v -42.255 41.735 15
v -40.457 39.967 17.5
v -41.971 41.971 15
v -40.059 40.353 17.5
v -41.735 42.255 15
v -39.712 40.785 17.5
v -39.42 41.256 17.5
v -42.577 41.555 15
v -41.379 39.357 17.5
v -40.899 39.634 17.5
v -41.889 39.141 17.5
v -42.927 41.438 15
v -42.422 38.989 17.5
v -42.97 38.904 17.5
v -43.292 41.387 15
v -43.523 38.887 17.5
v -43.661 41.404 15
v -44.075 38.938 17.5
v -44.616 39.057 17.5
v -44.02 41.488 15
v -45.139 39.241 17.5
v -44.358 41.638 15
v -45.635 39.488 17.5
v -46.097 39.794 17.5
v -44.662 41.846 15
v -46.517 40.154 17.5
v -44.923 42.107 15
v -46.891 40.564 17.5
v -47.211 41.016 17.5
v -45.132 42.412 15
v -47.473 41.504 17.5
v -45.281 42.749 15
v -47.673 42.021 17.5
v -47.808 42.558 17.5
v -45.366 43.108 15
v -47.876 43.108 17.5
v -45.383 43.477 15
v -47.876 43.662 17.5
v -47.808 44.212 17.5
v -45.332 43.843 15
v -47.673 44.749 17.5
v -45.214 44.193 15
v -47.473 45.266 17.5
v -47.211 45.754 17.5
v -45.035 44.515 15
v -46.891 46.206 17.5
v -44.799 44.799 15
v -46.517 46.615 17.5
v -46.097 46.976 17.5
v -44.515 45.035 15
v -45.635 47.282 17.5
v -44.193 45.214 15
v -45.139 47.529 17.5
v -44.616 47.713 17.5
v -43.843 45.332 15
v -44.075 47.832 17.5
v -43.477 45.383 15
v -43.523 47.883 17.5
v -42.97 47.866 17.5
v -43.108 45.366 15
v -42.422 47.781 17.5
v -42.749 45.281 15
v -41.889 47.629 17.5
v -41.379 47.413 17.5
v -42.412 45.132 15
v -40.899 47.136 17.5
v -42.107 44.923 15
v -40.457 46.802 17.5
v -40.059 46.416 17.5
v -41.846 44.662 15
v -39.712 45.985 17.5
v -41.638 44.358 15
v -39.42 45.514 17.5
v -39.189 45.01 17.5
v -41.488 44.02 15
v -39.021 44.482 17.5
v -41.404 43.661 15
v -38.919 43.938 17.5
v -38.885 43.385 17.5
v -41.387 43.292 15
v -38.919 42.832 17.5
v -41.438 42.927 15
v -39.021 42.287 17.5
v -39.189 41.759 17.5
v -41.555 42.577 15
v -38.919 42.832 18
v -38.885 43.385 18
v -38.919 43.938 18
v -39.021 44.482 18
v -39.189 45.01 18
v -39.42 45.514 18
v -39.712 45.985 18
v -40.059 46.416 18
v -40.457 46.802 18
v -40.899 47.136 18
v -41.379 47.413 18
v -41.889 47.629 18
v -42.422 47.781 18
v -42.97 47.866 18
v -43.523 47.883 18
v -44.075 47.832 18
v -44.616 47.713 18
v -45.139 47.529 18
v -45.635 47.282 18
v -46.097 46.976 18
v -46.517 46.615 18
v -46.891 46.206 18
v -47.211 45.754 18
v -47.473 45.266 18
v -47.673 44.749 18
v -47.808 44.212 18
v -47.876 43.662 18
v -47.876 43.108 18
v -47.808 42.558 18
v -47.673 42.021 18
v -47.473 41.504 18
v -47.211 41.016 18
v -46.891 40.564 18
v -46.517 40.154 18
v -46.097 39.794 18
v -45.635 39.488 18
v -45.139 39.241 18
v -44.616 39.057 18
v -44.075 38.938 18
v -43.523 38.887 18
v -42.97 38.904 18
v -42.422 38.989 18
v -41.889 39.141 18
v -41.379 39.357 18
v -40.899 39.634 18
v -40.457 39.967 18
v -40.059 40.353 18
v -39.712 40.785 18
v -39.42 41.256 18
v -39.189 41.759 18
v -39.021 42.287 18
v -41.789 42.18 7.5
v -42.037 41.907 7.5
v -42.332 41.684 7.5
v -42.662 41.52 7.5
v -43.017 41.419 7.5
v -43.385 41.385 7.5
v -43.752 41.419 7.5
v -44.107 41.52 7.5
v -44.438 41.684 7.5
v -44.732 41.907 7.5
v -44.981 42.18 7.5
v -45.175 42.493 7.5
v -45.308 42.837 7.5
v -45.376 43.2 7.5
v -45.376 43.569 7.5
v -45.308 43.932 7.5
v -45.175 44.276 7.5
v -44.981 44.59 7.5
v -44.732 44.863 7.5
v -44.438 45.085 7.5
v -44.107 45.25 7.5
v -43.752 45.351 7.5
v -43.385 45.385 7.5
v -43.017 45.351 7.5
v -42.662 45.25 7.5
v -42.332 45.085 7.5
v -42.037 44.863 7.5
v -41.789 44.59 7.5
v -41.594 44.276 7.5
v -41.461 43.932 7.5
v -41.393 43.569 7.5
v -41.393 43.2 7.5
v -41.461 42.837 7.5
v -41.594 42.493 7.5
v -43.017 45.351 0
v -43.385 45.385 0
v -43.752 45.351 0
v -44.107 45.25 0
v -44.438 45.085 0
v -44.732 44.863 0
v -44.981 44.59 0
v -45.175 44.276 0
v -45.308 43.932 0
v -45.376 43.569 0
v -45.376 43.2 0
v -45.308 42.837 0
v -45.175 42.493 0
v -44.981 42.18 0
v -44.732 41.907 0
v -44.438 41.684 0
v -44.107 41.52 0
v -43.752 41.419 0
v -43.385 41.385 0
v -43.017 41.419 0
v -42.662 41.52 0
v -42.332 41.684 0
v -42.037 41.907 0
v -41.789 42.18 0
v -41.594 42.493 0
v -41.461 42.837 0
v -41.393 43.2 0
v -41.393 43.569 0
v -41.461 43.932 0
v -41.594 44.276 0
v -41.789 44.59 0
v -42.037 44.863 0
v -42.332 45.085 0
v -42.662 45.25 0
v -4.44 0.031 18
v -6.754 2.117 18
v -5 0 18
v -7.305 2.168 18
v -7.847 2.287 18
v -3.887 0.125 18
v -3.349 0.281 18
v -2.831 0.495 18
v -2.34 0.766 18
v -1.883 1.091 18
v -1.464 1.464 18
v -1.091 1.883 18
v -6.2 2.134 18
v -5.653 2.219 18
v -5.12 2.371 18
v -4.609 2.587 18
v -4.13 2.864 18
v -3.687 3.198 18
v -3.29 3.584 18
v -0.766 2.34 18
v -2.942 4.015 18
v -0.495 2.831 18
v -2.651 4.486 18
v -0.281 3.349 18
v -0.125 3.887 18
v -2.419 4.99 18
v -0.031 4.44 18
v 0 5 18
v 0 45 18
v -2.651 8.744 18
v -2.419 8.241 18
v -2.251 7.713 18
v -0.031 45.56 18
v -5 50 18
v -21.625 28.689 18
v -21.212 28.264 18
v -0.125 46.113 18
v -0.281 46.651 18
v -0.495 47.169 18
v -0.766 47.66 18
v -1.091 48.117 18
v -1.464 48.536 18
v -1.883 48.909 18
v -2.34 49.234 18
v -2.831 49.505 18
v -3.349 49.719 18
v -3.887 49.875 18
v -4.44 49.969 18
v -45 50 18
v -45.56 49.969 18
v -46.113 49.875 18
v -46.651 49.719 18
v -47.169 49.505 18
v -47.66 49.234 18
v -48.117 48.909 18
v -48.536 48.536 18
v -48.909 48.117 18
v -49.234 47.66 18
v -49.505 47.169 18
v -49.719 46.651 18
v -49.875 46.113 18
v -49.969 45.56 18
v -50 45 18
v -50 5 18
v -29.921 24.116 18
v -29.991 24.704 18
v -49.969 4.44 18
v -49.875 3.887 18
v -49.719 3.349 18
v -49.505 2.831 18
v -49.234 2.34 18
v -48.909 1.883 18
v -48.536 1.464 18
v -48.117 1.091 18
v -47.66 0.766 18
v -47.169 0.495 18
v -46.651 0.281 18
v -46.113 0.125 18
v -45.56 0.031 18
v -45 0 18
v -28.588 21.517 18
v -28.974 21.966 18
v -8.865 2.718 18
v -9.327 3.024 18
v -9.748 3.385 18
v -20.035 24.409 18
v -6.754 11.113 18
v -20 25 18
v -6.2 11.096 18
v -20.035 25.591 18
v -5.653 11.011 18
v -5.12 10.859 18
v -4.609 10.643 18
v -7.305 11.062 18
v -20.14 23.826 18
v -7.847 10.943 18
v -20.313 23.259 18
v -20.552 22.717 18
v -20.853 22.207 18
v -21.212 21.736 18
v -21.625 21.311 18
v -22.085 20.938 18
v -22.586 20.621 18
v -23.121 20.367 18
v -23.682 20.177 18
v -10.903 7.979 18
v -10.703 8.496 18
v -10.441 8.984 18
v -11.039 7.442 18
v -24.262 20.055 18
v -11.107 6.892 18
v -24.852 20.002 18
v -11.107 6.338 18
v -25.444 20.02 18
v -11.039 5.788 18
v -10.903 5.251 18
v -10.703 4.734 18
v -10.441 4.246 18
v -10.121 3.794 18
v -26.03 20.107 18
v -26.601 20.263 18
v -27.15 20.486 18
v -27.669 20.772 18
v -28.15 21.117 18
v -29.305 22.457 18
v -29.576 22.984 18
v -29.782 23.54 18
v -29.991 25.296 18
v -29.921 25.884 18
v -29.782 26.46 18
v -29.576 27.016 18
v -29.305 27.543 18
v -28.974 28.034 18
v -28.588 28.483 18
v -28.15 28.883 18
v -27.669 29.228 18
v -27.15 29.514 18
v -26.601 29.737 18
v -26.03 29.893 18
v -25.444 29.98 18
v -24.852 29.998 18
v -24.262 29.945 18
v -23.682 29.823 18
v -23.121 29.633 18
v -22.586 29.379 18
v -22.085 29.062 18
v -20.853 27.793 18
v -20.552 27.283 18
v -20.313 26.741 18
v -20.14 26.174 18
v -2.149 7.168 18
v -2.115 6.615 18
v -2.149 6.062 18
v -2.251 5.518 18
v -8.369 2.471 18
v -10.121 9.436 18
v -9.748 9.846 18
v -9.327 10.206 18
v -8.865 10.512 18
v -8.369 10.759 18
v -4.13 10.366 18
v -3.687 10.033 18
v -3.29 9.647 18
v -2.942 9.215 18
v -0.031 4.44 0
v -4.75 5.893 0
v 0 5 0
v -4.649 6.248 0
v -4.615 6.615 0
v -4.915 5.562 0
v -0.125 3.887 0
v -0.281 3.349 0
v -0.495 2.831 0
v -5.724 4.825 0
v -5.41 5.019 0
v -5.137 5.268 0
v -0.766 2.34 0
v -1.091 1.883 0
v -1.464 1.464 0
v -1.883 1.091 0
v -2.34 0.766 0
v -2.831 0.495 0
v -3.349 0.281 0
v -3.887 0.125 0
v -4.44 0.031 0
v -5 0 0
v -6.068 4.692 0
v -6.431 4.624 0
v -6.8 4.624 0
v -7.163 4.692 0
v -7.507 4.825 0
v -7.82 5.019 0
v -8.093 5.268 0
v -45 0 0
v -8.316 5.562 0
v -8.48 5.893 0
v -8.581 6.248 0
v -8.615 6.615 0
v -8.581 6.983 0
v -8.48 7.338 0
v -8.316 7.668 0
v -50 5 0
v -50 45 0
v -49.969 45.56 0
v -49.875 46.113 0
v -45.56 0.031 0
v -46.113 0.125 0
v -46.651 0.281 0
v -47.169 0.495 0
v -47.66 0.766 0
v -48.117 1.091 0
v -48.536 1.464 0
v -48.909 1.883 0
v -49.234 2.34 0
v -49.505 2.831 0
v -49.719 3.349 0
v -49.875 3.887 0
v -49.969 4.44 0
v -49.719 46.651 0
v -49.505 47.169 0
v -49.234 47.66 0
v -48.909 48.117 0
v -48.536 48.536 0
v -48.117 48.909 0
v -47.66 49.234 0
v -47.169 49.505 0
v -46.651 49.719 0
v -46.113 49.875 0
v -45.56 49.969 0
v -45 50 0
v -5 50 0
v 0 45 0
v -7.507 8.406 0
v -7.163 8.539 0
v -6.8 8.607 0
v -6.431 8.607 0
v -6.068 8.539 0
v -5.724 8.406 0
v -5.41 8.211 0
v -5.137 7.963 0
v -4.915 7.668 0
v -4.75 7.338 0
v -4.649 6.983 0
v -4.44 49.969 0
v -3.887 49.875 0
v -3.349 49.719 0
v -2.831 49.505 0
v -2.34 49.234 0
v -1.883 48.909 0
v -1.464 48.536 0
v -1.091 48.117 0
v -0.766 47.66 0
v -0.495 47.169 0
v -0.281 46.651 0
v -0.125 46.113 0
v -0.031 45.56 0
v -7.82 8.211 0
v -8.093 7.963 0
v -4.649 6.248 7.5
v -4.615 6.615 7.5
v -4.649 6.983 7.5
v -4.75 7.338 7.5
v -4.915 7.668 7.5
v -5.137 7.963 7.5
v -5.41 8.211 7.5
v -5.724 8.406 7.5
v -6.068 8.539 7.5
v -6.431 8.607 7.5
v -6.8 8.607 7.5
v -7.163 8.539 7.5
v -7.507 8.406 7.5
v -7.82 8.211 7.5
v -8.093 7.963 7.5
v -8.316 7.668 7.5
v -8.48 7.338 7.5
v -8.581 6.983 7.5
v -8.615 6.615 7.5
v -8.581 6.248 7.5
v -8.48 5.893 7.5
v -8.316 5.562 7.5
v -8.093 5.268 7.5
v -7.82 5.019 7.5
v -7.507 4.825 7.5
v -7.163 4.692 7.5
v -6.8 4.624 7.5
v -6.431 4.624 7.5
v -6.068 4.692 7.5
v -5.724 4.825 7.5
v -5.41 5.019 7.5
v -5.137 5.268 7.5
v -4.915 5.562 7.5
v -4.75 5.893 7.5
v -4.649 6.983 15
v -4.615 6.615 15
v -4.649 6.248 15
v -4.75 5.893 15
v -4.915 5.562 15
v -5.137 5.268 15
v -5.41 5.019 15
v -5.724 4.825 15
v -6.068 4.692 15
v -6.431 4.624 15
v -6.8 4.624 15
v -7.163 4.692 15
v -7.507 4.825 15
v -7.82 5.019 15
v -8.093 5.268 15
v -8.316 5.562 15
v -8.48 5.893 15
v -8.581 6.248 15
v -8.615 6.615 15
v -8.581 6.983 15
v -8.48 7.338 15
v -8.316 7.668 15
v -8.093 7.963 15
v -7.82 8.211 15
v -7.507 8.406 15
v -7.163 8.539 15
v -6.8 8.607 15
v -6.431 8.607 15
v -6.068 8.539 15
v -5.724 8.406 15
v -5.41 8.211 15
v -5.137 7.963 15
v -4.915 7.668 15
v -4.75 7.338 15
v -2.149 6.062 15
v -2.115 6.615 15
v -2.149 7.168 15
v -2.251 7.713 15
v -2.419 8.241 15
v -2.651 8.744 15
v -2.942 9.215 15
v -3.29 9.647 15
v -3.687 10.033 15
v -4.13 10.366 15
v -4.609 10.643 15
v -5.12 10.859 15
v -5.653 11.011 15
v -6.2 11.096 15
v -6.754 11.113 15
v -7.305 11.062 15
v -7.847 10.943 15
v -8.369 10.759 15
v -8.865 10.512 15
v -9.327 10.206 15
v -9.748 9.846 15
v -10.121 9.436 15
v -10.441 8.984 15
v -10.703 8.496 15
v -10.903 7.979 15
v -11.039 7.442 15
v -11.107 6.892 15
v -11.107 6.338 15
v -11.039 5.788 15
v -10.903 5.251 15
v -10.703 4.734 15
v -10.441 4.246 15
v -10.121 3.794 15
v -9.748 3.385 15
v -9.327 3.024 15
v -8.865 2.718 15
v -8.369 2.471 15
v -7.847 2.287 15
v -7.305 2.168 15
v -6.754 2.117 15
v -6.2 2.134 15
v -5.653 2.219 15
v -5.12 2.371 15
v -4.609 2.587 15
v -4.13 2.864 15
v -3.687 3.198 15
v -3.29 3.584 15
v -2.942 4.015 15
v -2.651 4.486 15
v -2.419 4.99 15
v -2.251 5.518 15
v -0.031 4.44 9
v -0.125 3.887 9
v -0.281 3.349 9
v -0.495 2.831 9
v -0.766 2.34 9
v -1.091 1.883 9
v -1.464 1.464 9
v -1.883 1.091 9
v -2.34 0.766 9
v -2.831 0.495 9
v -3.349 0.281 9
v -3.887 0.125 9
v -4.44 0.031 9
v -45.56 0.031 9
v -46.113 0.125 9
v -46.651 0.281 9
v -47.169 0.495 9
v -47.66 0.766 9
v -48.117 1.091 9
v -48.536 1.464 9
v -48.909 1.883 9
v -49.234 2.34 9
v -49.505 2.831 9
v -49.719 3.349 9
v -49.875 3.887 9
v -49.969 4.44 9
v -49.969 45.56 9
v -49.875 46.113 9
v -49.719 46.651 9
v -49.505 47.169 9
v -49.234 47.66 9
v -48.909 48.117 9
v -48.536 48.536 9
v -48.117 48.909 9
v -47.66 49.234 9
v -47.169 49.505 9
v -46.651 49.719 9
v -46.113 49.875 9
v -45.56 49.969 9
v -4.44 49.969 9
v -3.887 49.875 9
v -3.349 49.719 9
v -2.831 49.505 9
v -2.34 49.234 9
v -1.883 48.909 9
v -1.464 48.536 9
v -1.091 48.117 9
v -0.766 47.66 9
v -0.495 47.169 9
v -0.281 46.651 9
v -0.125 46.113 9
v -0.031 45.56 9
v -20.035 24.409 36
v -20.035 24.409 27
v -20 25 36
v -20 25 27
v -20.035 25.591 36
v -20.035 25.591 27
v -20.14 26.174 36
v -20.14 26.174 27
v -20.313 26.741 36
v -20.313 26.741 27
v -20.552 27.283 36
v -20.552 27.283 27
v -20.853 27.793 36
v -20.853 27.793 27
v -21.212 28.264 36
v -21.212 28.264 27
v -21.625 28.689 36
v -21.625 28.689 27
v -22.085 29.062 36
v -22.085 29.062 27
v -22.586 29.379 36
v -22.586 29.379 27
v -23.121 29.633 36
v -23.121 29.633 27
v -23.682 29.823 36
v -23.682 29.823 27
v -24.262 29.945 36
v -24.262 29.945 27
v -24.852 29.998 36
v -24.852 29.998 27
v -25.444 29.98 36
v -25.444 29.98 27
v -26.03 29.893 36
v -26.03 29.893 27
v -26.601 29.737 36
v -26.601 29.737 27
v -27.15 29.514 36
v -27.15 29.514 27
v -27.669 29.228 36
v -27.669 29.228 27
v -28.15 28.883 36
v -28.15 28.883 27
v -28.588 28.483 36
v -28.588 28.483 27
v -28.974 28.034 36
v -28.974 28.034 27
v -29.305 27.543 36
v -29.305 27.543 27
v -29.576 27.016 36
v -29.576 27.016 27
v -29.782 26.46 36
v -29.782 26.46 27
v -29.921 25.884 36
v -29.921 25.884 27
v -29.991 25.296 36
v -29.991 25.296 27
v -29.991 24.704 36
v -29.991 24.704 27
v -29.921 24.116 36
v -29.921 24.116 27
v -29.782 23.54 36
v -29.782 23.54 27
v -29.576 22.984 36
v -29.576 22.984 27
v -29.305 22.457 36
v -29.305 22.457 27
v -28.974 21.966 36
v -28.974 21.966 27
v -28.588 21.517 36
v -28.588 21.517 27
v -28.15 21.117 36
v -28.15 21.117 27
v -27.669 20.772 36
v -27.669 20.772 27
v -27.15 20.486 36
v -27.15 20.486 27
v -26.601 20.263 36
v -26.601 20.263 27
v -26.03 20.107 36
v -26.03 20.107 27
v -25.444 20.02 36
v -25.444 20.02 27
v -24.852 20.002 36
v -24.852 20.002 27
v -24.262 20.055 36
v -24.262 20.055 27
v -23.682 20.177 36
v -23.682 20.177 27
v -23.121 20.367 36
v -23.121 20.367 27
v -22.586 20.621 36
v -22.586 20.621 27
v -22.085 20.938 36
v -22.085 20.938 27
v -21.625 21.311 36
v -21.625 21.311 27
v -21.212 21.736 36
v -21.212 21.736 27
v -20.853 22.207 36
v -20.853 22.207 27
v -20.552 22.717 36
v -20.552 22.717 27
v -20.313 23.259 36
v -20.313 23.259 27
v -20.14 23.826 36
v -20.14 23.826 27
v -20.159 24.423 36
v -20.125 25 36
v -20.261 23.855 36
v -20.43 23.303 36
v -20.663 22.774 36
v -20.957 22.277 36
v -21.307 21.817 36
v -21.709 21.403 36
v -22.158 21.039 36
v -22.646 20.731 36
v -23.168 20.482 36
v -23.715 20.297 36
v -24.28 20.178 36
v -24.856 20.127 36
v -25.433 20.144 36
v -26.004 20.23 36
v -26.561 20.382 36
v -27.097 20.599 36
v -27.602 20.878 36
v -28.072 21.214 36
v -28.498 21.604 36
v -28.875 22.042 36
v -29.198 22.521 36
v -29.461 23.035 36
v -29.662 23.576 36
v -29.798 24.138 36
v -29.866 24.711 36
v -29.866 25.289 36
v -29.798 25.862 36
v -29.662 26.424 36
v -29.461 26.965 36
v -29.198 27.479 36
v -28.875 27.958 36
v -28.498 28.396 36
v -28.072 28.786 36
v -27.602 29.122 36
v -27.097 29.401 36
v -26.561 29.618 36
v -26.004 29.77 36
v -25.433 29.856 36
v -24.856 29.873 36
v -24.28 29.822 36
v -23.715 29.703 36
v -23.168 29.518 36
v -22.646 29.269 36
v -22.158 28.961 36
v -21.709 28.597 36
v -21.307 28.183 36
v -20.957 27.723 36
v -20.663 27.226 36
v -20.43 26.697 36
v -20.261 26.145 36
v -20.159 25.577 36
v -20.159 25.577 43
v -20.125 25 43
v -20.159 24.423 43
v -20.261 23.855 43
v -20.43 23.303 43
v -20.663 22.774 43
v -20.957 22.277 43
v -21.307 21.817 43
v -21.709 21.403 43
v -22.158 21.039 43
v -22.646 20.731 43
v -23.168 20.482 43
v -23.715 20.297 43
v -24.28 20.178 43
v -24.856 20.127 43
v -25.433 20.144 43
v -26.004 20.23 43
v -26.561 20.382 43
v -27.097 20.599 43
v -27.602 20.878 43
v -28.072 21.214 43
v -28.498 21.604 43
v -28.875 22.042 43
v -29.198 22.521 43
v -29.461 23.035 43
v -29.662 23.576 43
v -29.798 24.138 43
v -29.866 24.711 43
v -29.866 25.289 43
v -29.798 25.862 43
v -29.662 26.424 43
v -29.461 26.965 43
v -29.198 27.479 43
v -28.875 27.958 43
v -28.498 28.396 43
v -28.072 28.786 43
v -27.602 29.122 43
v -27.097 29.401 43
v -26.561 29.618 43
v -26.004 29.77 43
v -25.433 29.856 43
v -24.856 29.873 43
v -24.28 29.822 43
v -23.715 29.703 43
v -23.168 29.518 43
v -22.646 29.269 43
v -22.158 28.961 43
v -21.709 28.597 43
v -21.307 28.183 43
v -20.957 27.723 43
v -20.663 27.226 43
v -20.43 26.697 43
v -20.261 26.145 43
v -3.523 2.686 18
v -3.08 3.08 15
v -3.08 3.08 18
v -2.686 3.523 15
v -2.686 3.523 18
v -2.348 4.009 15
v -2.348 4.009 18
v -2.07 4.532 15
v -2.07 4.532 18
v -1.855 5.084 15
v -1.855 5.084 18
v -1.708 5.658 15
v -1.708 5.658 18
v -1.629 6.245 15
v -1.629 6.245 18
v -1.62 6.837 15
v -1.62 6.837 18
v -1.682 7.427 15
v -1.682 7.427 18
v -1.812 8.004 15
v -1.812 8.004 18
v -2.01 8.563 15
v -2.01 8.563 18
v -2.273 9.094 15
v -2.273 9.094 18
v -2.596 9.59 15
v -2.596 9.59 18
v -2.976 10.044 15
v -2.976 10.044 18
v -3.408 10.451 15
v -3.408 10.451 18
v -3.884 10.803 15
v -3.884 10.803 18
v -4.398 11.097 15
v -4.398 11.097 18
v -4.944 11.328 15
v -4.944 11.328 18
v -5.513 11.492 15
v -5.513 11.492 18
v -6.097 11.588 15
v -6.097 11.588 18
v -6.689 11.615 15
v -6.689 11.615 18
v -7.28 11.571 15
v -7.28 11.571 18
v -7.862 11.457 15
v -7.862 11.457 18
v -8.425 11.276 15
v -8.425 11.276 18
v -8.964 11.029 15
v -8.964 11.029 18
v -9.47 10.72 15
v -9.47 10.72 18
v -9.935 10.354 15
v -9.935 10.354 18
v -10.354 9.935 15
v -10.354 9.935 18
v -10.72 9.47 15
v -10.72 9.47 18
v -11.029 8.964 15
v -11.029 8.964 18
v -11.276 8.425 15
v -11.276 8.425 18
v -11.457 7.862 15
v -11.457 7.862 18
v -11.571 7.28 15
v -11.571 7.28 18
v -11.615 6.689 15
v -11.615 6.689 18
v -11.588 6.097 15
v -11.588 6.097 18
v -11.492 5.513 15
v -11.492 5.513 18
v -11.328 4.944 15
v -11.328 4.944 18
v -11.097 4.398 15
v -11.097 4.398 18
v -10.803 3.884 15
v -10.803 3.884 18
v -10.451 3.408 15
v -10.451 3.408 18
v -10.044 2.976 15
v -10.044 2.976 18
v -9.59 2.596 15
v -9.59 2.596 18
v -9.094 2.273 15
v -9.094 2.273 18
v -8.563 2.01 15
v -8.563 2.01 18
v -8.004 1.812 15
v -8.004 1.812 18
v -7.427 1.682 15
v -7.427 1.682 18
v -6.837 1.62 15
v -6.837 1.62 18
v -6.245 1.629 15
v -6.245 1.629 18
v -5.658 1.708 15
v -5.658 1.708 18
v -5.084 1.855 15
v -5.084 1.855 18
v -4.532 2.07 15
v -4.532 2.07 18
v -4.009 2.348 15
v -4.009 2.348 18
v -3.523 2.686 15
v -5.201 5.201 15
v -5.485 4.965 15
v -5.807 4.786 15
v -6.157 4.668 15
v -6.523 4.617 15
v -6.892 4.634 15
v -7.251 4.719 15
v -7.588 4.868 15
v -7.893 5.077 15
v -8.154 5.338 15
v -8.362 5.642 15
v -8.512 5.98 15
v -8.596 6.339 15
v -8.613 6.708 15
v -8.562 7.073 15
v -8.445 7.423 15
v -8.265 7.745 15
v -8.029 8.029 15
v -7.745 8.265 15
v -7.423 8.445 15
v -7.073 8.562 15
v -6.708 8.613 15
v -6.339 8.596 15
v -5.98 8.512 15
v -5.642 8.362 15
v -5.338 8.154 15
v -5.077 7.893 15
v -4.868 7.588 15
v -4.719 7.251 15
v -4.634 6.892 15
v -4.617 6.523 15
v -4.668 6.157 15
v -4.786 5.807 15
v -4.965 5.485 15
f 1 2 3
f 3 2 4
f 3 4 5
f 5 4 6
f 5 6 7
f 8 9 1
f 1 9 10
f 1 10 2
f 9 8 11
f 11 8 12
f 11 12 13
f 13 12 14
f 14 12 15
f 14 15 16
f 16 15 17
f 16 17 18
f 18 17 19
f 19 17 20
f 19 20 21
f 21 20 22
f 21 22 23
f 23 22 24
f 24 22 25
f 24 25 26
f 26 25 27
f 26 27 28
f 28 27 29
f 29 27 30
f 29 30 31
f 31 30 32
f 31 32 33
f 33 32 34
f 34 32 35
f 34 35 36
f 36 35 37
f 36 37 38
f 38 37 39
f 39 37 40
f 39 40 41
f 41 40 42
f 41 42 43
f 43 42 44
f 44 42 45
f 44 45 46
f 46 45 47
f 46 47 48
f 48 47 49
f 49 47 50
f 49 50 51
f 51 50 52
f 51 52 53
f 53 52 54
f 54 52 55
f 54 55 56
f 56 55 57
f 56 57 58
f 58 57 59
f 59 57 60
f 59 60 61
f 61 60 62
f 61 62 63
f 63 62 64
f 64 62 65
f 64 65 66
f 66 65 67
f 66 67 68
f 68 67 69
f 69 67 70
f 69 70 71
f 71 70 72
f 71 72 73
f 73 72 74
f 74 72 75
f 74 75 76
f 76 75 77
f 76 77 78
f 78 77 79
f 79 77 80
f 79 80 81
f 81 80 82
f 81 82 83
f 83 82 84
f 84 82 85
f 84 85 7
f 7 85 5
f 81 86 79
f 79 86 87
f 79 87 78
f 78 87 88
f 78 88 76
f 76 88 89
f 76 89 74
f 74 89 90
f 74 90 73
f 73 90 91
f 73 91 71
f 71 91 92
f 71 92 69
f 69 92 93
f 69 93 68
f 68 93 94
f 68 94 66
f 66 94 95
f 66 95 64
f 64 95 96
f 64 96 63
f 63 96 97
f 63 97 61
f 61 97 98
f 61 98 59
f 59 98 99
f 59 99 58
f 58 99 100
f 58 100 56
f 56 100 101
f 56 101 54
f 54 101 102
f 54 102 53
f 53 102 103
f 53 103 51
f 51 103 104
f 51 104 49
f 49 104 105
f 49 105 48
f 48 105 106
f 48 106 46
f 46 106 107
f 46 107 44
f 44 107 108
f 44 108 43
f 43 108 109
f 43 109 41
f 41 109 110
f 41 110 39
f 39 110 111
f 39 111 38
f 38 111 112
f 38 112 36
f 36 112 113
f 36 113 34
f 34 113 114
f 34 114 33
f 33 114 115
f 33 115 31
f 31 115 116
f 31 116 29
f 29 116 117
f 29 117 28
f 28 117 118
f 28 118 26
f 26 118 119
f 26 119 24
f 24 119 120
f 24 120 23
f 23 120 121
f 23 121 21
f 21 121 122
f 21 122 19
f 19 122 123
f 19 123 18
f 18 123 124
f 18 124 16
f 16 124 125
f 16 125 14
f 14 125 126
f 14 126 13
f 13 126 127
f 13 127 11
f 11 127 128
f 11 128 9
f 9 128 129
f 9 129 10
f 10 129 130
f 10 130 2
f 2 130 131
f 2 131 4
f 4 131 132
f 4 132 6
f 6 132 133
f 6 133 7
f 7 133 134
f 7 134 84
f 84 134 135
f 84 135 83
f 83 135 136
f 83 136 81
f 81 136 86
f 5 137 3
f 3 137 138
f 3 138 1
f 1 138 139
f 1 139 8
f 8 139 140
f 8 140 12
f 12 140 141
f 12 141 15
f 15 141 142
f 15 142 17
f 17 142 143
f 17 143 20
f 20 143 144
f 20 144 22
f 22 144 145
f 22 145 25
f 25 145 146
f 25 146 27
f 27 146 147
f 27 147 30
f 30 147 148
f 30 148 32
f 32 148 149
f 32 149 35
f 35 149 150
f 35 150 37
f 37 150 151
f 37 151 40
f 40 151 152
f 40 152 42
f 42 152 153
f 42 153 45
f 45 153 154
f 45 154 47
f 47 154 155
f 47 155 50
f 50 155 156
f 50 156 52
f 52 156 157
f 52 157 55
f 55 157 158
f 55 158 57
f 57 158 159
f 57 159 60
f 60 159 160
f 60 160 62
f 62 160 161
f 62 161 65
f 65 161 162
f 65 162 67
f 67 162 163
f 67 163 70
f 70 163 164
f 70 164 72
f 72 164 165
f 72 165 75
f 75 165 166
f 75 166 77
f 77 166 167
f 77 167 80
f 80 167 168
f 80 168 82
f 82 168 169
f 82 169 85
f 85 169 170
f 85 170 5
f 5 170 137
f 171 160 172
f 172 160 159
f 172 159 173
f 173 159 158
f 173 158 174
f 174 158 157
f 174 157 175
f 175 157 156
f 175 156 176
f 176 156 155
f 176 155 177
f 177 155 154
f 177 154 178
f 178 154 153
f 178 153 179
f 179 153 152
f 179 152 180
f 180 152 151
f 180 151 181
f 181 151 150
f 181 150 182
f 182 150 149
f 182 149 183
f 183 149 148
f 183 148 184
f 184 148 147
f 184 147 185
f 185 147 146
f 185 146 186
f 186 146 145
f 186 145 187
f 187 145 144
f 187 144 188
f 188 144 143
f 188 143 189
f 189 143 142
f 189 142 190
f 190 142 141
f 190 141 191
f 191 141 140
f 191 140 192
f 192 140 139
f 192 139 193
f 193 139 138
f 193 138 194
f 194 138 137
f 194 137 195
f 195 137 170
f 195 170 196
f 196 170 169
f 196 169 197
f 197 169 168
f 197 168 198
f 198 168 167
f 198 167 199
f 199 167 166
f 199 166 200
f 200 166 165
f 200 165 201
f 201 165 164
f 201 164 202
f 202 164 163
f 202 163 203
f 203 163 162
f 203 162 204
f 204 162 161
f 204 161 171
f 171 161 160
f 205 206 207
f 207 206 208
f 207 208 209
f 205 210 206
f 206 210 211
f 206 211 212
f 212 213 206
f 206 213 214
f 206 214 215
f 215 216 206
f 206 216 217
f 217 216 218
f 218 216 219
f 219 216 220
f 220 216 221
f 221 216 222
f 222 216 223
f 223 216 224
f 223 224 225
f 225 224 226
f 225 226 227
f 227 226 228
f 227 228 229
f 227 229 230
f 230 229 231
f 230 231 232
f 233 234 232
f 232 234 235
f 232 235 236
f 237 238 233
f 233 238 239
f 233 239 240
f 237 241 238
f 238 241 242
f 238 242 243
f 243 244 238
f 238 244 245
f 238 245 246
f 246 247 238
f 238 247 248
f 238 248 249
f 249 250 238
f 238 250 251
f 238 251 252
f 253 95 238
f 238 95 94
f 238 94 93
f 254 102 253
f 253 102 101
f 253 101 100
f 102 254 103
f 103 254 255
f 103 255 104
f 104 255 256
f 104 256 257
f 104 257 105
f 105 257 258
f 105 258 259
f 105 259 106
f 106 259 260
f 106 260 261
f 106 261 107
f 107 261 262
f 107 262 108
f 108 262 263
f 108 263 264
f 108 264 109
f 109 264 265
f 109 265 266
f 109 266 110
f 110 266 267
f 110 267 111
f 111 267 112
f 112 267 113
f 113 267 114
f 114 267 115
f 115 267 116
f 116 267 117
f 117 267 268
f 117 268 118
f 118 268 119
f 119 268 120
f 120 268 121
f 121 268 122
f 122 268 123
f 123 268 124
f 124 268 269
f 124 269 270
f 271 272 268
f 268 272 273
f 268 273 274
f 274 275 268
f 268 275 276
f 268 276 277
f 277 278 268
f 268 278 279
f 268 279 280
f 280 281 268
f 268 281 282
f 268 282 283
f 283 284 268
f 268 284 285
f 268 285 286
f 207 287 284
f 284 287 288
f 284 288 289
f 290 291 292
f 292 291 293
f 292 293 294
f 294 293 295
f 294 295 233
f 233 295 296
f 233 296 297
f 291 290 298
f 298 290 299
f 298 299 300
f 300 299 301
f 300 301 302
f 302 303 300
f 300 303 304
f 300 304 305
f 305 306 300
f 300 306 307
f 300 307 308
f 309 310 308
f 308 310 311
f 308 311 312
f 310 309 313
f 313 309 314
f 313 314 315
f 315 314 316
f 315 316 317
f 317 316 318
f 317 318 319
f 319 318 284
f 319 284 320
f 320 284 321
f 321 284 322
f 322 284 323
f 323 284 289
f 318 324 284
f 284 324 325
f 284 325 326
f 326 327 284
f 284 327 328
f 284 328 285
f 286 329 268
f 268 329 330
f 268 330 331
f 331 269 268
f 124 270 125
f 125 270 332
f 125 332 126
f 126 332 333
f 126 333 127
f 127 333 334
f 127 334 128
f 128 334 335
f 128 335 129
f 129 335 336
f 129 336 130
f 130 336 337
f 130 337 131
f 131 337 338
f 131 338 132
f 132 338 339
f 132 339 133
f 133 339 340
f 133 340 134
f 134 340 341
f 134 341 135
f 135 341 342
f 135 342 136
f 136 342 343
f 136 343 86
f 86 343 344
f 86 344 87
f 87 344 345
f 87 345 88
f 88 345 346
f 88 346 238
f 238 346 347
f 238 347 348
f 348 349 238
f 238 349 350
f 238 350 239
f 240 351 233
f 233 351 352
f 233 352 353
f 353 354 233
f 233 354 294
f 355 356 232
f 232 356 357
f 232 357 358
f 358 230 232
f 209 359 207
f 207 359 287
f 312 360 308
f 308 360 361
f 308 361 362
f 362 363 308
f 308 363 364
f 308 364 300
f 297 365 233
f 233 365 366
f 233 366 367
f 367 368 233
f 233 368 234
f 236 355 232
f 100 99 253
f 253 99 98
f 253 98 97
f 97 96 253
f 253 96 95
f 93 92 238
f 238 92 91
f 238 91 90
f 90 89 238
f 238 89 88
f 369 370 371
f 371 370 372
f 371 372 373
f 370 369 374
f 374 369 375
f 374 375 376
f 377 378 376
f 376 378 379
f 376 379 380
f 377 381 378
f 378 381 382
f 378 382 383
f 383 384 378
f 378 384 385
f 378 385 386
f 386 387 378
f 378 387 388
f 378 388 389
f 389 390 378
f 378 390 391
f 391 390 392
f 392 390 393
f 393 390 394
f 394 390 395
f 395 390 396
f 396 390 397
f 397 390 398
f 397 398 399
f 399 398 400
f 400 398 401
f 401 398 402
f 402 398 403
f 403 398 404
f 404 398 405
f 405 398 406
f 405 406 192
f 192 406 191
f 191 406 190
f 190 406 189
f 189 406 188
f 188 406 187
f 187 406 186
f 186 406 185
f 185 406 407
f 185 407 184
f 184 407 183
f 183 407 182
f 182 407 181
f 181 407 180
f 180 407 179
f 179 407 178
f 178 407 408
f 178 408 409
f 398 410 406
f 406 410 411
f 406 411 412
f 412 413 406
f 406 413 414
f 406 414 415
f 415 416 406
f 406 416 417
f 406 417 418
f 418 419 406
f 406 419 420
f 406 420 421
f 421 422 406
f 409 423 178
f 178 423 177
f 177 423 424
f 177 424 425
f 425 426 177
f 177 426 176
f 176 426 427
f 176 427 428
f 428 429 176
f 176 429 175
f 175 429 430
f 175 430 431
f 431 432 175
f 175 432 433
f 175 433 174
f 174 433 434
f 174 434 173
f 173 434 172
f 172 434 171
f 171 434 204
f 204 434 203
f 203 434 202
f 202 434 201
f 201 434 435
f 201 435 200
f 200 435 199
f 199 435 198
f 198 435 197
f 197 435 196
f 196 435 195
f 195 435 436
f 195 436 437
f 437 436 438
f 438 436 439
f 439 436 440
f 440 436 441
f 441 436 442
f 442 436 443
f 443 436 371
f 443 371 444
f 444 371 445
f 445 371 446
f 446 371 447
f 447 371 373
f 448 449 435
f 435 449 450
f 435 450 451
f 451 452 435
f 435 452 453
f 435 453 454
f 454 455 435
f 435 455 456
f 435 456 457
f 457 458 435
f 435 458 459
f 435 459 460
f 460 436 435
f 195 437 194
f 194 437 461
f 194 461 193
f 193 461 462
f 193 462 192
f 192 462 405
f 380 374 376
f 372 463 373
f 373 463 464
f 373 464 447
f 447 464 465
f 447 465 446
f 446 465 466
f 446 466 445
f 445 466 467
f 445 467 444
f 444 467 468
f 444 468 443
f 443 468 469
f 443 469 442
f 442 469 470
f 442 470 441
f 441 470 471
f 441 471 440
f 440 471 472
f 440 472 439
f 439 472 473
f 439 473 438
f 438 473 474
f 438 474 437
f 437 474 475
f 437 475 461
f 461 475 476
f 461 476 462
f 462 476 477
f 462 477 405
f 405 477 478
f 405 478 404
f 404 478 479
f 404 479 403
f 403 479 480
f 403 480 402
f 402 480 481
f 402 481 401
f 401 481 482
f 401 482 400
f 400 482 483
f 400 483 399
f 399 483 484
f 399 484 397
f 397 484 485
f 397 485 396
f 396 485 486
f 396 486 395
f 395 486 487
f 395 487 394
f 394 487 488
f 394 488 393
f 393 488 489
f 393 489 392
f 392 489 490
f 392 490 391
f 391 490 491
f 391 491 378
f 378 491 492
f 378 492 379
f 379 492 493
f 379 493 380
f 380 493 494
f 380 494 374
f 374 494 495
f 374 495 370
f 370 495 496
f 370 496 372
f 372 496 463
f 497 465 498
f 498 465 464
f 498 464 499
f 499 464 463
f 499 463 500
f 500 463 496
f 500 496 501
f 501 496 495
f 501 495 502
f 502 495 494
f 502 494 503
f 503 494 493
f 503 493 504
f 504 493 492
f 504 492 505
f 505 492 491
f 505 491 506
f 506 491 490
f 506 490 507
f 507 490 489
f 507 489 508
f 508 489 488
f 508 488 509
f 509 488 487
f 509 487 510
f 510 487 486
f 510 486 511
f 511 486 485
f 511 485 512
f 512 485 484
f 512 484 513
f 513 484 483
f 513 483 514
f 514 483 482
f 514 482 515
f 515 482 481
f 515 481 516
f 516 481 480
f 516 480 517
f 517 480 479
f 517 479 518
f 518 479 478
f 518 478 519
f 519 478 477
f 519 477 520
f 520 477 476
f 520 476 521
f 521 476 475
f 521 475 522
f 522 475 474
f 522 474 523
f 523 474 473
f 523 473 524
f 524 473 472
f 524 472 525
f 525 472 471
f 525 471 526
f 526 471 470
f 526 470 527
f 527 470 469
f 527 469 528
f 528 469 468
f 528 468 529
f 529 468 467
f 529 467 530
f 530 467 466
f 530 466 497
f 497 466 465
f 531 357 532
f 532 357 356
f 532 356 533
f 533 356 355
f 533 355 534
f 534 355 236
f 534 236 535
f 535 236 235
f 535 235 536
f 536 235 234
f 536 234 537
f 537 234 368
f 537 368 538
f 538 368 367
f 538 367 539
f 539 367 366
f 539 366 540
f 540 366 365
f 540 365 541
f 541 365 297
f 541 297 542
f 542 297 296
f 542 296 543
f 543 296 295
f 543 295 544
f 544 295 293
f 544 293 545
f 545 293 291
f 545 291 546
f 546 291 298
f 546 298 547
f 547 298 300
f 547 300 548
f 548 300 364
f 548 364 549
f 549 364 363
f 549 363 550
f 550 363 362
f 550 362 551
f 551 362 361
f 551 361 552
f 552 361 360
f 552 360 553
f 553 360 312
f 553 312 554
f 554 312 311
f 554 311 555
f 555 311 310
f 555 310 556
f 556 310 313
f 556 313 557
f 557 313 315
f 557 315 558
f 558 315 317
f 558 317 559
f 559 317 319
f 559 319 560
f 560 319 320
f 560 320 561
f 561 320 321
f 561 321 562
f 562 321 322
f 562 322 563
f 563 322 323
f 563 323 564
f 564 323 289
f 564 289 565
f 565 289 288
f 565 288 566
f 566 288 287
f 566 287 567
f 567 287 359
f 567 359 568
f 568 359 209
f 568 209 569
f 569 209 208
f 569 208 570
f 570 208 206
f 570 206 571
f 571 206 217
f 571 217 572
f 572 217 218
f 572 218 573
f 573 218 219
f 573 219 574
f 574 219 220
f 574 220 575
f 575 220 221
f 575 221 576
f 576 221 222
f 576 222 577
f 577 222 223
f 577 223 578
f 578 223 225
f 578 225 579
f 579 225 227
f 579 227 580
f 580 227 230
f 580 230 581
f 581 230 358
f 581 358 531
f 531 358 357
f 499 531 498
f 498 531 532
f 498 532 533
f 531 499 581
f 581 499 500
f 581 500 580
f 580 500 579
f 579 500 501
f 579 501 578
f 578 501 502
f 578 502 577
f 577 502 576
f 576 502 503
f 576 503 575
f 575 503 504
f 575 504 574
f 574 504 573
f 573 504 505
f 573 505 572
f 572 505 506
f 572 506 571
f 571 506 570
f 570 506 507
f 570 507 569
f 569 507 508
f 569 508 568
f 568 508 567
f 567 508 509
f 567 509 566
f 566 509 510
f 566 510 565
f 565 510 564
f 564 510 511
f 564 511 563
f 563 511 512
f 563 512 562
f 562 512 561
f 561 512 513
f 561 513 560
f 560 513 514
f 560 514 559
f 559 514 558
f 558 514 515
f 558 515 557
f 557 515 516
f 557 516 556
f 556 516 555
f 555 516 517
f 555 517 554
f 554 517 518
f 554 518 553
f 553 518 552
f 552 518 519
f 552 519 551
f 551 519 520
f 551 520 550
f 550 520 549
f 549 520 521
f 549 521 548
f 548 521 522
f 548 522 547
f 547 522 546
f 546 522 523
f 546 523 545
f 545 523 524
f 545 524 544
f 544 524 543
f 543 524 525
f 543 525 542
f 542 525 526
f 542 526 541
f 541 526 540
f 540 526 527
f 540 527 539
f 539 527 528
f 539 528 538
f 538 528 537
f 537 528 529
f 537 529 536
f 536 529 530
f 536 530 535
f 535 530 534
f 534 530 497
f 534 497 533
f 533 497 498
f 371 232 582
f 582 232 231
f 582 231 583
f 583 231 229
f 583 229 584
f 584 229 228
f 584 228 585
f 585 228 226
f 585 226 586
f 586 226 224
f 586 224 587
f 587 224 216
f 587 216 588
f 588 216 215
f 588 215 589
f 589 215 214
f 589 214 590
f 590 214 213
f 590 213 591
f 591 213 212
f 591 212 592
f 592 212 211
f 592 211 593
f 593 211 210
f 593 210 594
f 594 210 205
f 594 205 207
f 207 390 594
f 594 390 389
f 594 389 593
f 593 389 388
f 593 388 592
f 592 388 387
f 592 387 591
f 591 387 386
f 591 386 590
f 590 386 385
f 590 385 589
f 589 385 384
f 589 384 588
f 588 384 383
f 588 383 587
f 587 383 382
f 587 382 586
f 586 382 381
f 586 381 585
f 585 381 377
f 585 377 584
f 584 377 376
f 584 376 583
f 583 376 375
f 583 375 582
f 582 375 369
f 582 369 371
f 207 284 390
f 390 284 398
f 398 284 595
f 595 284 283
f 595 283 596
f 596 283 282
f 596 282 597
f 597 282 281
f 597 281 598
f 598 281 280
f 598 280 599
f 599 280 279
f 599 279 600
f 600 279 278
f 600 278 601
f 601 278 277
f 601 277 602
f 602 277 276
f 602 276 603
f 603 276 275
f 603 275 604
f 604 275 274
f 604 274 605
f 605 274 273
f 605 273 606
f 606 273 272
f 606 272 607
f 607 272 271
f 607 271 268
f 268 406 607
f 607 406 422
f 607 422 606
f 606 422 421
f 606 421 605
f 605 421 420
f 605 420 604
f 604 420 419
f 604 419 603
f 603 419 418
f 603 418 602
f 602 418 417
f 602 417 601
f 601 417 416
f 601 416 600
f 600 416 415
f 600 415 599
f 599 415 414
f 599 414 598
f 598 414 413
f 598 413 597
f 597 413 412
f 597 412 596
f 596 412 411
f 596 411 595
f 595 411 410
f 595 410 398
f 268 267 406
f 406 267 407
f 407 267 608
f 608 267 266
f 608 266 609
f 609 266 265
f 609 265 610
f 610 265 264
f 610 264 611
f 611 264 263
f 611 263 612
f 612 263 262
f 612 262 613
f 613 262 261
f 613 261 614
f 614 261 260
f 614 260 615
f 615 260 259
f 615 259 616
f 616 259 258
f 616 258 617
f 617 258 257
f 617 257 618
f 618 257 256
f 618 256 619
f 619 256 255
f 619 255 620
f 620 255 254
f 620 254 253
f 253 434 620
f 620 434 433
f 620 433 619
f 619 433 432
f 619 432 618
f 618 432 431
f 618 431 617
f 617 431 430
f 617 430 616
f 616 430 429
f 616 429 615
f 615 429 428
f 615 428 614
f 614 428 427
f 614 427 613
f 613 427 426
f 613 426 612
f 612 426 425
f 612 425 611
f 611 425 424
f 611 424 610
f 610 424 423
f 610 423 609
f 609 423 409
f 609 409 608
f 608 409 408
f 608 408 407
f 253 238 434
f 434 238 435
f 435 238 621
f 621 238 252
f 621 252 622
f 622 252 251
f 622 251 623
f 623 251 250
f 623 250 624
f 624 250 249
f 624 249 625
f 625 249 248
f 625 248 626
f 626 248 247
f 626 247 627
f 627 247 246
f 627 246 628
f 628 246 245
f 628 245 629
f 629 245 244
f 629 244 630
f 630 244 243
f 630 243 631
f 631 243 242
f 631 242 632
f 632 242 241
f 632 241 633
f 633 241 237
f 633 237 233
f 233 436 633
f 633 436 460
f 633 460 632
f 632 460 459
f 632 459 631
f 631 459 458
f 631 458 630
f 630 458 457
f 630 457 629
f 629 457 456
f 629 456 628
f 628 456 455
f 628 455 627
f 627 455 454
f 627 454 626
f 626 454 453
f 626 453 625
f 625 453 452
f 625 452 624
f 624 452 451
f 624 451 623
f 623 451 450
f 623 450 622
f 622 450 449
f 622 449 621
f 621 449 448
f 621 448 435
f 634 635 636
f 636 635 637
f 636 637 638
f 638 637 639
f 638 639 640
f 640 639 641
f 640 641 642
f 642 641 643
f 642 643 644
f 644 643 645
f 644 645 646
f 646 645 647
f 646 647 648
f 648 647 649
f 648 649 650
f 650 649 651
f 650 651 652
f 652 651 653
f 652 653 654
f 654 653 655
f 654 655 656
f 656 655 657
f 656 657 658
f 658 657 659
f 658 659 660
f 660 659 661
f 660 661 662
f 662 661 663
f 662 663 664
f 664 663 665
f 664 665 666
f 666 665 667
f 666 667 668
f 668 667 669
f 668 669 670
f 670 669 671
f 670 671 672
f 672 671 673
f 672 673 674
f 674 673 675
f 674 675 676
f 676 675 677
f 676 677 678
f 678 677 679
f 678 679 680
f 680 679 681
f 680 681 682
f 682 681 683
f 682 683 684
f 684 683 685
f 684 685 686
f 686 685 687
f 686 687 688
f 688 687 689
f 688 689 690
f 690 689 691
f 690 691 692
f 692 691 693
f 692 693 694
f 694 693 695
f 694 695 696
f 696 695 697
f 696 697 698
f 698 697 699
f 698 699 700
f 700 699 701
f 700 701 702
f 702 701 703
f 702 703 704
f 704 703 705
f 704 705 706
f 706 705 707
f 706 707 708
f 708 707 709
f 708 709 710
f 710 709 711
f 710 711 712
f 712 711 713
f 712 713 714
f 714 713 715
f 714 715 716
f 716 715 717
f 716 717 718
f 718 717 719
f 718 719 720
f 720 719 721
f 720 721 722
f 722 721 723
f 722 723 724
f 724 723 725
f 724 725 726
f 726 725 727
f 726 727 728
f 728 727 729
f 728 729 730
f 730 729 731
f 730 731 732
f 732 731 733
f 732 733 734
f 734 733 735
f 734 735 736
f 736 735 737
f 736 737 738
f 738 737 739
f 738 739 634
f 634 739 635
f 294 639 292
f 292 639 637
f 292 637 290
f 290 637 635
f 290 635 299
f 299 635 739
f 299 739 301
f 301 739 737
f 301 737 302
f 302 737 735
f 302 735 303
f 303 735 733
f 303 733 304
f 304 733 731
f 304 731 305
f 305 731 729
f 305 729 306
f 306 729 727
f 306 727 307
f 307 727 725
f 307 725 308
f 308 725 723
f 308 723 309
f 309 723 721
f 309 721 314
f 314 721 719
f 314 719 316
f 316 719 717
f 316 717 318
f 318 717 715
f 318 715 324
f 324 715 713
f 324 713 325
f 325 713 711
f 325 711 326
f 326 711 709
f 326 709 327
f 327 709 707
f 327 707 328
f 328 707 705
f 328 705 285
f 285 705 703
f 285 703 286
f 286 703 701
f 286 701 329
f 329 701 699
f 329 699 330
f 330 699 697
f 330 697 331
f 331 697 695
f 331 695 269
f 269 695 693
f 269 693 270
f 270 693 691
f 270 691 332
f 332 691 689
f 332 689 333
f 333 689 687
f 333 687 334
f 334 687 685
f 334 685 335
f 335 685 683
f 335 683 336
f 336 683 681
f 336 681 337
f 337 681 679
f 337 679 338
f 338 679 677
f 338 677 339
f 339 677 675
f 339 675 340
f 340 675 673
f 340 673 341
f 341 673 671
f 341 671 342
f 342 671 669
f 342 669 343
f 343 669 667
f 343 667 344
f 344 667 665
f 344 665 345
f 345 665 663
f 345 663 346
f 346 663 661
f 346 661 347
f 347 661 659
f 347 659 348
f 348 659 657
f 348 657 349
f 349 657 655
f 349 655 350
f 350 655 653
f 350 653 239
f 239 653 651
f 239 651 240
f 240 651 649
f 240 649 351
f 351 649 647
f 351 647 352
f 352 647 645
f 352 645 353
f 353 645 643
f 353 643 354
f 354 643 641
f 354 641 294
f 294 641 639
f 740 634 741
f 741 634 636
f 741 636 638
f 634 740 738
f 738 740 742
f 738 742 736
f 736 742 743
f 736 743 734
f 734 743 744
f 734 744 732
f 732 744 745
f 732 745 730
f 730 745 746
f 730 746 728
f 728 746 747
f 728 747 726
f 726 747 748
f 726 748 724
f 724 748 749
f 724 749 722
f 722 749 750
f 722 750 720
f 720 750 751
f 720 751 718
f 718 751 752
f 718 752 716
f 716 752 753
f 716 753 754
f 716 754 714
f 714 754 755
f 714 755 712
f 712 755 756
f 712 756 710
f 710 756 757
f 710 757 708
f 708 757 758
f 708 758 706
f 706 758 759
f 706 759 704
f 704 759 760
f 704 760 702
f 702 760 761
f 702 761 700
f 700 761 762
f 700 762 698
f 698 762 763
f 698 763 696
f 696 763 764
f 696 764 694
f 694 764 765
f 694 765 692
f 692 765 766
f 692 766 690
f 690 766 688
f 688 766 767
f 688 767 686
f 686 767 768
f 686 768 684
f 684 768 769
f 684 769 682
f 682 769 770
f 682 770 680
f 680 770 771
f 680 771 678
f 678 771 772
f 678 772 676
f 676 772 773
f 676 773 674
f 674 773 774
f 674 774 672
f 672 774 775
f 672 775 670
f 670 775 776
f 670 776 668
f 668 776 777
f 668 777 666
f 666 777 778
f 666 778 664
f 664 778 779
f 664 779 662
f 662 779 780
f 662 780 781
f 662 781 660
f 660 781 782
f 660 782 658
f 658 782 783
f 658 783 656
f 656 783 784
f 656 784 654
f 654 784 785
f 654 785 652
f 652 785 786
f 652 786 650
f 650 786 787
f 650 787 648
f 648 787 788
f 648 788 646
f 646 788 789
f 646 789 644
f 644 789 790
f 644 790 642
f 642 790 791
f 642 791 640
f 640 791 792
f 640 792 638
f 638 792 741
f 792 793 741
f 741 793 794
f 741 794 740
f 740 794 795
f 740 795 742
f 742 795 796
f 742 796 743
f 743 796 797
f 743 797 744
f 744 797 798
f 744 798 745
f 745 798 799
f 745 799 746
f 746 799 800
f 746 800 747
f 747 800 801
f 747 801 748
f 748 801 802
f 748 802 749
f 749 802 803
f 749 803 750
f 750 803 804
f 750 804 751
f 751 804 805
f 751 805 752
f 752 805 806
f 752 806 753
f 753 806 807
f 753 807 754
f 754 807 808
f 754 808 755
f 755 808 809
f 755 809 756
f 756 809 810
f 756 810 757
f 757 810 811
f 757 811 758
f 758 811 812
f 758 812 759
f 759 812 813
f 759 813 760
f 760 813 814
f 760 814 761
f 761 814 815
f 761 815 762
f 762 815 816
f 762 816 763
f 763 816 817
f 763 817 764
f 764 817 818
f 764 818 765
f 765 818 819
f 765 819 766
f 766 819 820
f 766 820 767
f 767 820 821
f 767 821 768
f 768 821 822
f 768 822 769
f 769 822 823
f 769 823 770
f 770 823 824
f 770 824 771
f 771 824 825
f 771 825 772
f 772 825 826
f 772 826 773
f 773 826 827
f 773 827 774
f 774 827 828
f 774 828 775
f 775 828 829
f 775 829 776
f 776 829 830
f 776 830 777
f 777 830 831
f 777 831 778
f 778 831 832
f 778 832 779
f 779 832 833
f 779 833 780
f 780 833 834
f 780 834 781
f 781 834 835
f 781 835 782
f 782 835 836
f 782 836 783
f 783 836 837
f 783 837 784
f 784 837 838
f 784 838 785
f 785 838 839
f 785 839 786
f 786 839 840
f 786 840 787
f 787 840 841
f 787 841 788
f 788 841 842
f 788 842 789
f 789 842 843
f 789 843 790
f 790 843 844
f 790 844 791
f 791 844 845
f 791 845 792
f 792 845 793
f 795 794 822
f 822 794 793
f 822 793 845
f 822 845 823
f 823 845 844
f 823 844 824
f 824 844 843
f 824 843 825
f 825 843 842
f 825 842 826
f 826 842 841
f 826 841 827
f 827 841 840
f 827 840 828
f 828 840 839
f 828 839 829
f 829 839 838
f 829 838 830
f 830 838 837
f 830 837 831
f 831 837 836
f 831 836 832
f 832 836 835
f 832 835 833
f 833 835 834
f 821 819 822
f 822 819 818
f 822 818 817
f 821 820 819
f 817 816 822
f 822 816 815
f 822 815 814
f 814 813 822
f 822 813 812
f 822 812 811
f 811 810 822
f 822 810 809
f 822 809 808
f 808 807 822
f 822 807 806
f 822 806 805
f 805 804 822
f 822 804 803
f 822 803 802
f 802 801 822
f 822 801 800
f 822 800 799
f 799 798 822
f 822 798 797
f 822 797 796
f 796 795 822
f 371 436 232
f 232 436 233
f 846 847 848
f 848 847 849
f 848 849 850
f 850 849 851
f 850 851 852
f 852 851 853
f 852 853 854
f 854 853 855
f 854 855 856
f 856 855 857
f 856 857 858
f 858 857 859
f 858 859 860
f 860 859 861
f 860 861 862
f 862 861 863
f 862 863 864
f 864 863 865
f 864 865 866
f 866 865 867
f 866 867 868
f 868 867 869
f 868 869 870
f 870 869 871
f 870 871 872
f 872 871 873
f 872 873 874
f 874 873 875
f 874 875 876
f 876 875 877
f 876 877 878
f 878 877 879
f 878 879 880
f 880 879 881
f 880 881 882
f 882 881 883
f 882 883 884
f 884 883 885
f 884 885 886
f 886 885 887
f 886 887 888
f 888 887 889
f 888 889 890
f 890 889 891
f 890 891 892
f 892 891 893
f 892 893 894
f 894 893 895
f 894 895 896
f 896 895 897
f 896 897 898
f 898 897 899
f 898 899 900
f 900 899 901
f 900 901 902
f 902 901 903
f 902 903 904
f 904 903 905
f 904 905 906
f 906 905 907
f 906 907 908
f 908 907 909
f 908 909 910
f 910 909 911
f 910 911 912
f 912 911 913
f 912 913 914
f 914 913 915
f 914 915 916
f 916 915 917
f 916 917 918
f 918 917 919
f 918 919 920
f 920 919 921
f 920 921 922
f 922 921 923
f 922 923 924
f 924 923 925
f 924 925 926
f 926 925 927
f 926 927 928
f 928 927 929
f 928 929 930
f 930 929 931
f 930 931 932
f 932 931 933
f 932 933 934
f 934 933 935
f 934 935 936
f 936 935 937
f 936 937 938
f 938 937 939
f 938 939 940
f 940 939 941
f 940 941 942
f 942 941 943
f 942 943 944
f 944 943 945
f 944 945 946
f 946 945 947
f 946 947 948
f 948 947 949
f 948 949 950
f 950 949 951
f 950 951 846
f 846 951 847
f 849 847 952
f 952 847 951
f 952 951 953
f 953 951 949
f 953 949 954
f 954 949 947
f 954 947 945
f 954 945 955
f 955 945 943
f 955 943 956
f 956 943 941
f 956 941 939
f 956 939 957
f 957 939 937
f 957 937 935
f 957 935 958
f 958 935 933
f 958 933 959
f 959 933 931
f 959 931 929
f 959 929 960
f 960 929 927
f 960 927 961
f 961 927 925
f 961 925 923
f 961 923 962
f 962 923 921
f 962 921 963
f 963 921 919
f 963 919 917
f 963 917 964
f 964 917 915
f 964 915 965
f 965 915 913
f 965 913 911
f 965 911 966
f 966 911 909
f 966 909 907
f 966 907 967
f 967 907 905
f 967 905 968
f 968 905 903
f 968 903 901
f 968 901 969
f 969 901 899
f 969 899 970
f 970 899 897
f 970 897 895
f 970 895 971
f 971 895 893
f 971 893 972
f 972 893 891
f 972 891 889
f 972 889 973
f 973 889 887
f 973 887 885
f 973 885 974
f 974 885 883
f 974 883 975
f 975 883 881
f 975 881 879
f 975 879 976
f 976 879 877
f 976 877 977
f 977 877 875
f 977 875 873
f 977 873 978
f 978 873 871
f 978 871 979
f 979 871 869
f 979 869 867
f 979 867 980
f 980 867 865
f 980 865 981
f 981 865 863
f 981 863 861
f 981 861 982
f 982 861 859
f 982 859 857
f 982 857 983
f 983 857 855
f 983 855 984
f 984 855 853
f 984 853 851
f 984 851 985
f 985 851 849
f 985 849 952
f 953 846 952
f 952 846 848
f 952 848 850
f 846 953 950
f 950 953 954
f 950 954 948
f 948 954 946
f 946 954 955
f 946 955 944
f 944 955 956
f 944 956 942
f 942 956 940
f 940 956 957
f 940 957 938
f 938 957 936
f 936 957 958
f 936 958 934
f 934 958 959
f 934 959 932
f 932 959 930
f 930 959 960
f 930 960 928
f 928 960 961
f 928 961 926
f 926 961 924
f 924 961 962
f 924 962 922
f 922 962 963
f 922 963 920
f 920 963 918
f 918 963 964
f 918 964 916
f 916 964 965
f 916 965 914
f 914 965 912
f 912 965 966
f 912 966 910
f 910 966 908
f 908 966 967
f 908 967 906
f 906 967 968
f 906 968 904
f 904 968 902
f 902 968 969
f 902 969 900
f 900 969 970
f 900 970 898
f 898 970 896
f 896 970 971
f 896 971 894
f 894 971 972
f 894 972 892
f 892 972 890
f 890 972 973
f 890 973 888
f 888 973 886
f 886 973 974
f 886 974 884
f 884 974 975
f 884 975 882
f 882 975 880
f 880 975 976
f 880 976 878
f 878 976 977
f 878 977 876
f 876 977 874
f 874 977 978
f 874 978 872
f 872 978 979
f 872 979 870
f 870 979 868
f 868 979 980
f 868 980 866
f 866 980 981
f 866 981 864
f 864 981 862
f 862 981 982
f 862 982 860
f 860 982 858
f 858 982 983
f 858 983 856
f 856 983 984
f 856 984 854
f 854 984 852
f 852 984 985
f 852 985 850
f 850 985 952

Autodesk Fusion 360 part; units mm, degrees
sketch "Sketch1" plane through (0, 0, 0) normal (0, 0, 1) x (1, 0, 0)
  line L0 (0, 0) -> (-50, 0)
  line L1 (-50, 0) -> (-50, 50)
  line L2 (-50, 50) -> (0, 50)
  line L3 (0, 50) -> (0, 0)
  dimension "d1" = 50
  dimension "d2" = 50
extrude "Extrude1" add sketch "Sketch1" along normal blind 18 makes body 1
sketch "Sketch2" plane through (0, 0, 18) normal (0, 0, 1) x (-1, 0, 0)
  line L0 (0, -50) -> (50, -50)
  line L1 (50, -50) -> (50, 0)
  line L2 (50, 0) -> (0, 0)
  line L3 (0, 0) -> (0, -50)
  line L4 (50, -50) -> (0, 0)
  line L5 (0, -50) -> (50, 0)
  circle A0 centre (25, -25) radius 5
  circle A1 centre (25, -25) radius 4.875
  dimension "d10" = 10
  dimension "d11" = 9.75
extrude "Extrude2" add sketch "Sketch2" along normal blind 25 contours L4 L5 A1 | L4 L5 A1 | L4 L5 A1 | L4 L5 A1 bodies 1
extrude "Extrude3" add sketch "Sketch2" along normal blind 18 contours L4 L5 A0 A1 | L4 L5 A0 A1 | L4 L5 A0 A1 | L4 L5 A0 A1 bodies 1
fillet "Fillet1" radius 5 4 edges at (0, 50, 9) (-50, 50, 9) (-50, 0, 9) (0, 0, 9) on bodies 1
sketch "Sketch4" plane through (0, 0, 18) normal (0, 0, 1) x (-1, 0, 0)
  circle A0 centre (25, -25) radius 5
  arc A1 (5, 0) -> (0, -5) centre (5, -5) ccw
  line L0 (0, -5) -> (0, -45)
  arc A2 (0, -45) -> (5, -50) centre (5, -45) ccw
  line L1 (5, -50) -> (45, -50)
  arc A3 (45, -50) -> (50, -45) centre (45, -45) ccw
  line L2 (50, -45) -> (50, -5)
  arc A4 (50, -5) -> (45, 0) centre (45, -5) ccw
  line L3 (45, 0) -> (5, 0)
  line L4 (25, -25) -> (6.6152, -6.6152)
  circle A5 centre (6.6152, -6.6152) radius 4.5
  dimension "d25" = 26
  dimension "d26" = 9
extrude "Extrude6" cut sketch "Sketch4" against normal blind 3 contours A5 bodies 1
sketch "Sketch5" plane through (0, 0, 15) normal (0, 0, 1) x (-1, 0, 0)
  circle A0 centre (6.6152, -6.6152) radius 4.5
  circle A1 centre (6.6152, -6.6152) radius 2
  dimension "d29" = 4
extrude "Extrude7" cut sketch "Sketch5" against normal blind 200 contours A1 bodies 1
ref_plane "WorkPlane2" through (-25, 25, 18) normal (-0.7071, -0.7071, 0) x (0.7071, -0.7071, 0)
sketch "Sketch7" plane through (0, 0, 0) normal (-0.7071, -0.7071, 0) x (0.7071, -0.7071, 0)
  line L0 (-7.3553, 15) -> (-11.3553, 15)
  line L1 (-7.3553, 15) -> (-4.1326, 18.2228)
  line L2 (-7.3553, 15) -> (-2.7976, 15) construction
  line L3 (-11.3553, 15) -> (-15.0845, 18.7292)
  line L4 (-70.7107, 18) -> (0, 18)
  line L5 (-4.3553, 18) -> (-4.3553, 15)
  line L6 (-7.3553, 15) -> (-4.3553, 15)
  line L7 (-14.3553, 18) -> (-14.3553, 15)
  line L8 (-14.3553, 15) -> (-11.3553, 15)
  line L9 (-9.3553, 15) -> (-9.3553, 18)
  dimension "d34" = 45
  dimension "d35" = 90
revolve "Revolve1" add sketch "Sketch7" angle 360 about axis through (-6.6152, 6.6152, 15) along (0, 0, 1) separate body contours L1 L5 L6 makes body 2
ref_plane "WorkPlane3" through (-25, 25, 18) normal (-0.7071, 0.7071, 0) x (-0.7071, -0.7071, 0)
mirror "Mirror1" about plane through (-25, 25, 18) normal (-0.7071, 0.7071, 0) of "Extrude7", "Revolve1"
sketch "Sketch8" plane through (0, 0, 18) normal (0, 0, 1) x (-1, 0, 0)
  line L0 (25, -25) -> (43.3848, -43.3848)
  circle A0 centre (43.3848, -43.3848) radius 4.5
  dimension "d42" = 26
  dimension "d43" = 9
extrude "Extrude8" cut sketch "Sketch8" against normal blind 3 bodies 1
ref_plane "WorkPlane4" through (-25, 25, 18) normal (-0.7071, -0.7071, 0) x (0.7071, -0.7071, 0)
sketch "Sketch9" plane through (0, 0, 0) normal (-0.7071, -0.7071, 0) x (0.7071, -0.7071, 0)
  line L0 (-61.3553, 18) -> (-61.3553, 15)
  line L1 (-61.3553, 15) -> (-59.3553, 15)
  line L2 (-61.3553, 15) -> (-63.3553, 15)
  line L3 (-59.3553, 15) -> (-55.5146, 18.8408)
  line L4 (-59.3553, 15) -> (-53.9237, 15) construction
  line L5 (-63.3553, 15) -> (-66.7785, 18.4232)
  line L6 (-56.8553, 18) -> (-65.8553, 18)
  line L7 (-70.7107, 18) -> (0, 18)
  line L8 (-56.3553, 18) -> (-56.3553, 15)
  line L9 (-56.3553, 15) -> (-59.3553, 15)
  line L10 (-66.3553, 18) -> (-66.3553, 15)
  line L11 (-66.3553, 15) -> (-63.3553, 15)
  point P0 (-61.3553, 18)
  dimension "d47" = 3
  dimension "d48" = 2
  dimension "d49" = 2
  dimension "d50" = 45
  dimension "d51" = 90
revolve "Revolve2" add sketch "Sketch9" angle 360 about axis through (-43.3848, 43.3848, 18) along (0, 0, -1) contours L3 L8 L9 bodies 1
